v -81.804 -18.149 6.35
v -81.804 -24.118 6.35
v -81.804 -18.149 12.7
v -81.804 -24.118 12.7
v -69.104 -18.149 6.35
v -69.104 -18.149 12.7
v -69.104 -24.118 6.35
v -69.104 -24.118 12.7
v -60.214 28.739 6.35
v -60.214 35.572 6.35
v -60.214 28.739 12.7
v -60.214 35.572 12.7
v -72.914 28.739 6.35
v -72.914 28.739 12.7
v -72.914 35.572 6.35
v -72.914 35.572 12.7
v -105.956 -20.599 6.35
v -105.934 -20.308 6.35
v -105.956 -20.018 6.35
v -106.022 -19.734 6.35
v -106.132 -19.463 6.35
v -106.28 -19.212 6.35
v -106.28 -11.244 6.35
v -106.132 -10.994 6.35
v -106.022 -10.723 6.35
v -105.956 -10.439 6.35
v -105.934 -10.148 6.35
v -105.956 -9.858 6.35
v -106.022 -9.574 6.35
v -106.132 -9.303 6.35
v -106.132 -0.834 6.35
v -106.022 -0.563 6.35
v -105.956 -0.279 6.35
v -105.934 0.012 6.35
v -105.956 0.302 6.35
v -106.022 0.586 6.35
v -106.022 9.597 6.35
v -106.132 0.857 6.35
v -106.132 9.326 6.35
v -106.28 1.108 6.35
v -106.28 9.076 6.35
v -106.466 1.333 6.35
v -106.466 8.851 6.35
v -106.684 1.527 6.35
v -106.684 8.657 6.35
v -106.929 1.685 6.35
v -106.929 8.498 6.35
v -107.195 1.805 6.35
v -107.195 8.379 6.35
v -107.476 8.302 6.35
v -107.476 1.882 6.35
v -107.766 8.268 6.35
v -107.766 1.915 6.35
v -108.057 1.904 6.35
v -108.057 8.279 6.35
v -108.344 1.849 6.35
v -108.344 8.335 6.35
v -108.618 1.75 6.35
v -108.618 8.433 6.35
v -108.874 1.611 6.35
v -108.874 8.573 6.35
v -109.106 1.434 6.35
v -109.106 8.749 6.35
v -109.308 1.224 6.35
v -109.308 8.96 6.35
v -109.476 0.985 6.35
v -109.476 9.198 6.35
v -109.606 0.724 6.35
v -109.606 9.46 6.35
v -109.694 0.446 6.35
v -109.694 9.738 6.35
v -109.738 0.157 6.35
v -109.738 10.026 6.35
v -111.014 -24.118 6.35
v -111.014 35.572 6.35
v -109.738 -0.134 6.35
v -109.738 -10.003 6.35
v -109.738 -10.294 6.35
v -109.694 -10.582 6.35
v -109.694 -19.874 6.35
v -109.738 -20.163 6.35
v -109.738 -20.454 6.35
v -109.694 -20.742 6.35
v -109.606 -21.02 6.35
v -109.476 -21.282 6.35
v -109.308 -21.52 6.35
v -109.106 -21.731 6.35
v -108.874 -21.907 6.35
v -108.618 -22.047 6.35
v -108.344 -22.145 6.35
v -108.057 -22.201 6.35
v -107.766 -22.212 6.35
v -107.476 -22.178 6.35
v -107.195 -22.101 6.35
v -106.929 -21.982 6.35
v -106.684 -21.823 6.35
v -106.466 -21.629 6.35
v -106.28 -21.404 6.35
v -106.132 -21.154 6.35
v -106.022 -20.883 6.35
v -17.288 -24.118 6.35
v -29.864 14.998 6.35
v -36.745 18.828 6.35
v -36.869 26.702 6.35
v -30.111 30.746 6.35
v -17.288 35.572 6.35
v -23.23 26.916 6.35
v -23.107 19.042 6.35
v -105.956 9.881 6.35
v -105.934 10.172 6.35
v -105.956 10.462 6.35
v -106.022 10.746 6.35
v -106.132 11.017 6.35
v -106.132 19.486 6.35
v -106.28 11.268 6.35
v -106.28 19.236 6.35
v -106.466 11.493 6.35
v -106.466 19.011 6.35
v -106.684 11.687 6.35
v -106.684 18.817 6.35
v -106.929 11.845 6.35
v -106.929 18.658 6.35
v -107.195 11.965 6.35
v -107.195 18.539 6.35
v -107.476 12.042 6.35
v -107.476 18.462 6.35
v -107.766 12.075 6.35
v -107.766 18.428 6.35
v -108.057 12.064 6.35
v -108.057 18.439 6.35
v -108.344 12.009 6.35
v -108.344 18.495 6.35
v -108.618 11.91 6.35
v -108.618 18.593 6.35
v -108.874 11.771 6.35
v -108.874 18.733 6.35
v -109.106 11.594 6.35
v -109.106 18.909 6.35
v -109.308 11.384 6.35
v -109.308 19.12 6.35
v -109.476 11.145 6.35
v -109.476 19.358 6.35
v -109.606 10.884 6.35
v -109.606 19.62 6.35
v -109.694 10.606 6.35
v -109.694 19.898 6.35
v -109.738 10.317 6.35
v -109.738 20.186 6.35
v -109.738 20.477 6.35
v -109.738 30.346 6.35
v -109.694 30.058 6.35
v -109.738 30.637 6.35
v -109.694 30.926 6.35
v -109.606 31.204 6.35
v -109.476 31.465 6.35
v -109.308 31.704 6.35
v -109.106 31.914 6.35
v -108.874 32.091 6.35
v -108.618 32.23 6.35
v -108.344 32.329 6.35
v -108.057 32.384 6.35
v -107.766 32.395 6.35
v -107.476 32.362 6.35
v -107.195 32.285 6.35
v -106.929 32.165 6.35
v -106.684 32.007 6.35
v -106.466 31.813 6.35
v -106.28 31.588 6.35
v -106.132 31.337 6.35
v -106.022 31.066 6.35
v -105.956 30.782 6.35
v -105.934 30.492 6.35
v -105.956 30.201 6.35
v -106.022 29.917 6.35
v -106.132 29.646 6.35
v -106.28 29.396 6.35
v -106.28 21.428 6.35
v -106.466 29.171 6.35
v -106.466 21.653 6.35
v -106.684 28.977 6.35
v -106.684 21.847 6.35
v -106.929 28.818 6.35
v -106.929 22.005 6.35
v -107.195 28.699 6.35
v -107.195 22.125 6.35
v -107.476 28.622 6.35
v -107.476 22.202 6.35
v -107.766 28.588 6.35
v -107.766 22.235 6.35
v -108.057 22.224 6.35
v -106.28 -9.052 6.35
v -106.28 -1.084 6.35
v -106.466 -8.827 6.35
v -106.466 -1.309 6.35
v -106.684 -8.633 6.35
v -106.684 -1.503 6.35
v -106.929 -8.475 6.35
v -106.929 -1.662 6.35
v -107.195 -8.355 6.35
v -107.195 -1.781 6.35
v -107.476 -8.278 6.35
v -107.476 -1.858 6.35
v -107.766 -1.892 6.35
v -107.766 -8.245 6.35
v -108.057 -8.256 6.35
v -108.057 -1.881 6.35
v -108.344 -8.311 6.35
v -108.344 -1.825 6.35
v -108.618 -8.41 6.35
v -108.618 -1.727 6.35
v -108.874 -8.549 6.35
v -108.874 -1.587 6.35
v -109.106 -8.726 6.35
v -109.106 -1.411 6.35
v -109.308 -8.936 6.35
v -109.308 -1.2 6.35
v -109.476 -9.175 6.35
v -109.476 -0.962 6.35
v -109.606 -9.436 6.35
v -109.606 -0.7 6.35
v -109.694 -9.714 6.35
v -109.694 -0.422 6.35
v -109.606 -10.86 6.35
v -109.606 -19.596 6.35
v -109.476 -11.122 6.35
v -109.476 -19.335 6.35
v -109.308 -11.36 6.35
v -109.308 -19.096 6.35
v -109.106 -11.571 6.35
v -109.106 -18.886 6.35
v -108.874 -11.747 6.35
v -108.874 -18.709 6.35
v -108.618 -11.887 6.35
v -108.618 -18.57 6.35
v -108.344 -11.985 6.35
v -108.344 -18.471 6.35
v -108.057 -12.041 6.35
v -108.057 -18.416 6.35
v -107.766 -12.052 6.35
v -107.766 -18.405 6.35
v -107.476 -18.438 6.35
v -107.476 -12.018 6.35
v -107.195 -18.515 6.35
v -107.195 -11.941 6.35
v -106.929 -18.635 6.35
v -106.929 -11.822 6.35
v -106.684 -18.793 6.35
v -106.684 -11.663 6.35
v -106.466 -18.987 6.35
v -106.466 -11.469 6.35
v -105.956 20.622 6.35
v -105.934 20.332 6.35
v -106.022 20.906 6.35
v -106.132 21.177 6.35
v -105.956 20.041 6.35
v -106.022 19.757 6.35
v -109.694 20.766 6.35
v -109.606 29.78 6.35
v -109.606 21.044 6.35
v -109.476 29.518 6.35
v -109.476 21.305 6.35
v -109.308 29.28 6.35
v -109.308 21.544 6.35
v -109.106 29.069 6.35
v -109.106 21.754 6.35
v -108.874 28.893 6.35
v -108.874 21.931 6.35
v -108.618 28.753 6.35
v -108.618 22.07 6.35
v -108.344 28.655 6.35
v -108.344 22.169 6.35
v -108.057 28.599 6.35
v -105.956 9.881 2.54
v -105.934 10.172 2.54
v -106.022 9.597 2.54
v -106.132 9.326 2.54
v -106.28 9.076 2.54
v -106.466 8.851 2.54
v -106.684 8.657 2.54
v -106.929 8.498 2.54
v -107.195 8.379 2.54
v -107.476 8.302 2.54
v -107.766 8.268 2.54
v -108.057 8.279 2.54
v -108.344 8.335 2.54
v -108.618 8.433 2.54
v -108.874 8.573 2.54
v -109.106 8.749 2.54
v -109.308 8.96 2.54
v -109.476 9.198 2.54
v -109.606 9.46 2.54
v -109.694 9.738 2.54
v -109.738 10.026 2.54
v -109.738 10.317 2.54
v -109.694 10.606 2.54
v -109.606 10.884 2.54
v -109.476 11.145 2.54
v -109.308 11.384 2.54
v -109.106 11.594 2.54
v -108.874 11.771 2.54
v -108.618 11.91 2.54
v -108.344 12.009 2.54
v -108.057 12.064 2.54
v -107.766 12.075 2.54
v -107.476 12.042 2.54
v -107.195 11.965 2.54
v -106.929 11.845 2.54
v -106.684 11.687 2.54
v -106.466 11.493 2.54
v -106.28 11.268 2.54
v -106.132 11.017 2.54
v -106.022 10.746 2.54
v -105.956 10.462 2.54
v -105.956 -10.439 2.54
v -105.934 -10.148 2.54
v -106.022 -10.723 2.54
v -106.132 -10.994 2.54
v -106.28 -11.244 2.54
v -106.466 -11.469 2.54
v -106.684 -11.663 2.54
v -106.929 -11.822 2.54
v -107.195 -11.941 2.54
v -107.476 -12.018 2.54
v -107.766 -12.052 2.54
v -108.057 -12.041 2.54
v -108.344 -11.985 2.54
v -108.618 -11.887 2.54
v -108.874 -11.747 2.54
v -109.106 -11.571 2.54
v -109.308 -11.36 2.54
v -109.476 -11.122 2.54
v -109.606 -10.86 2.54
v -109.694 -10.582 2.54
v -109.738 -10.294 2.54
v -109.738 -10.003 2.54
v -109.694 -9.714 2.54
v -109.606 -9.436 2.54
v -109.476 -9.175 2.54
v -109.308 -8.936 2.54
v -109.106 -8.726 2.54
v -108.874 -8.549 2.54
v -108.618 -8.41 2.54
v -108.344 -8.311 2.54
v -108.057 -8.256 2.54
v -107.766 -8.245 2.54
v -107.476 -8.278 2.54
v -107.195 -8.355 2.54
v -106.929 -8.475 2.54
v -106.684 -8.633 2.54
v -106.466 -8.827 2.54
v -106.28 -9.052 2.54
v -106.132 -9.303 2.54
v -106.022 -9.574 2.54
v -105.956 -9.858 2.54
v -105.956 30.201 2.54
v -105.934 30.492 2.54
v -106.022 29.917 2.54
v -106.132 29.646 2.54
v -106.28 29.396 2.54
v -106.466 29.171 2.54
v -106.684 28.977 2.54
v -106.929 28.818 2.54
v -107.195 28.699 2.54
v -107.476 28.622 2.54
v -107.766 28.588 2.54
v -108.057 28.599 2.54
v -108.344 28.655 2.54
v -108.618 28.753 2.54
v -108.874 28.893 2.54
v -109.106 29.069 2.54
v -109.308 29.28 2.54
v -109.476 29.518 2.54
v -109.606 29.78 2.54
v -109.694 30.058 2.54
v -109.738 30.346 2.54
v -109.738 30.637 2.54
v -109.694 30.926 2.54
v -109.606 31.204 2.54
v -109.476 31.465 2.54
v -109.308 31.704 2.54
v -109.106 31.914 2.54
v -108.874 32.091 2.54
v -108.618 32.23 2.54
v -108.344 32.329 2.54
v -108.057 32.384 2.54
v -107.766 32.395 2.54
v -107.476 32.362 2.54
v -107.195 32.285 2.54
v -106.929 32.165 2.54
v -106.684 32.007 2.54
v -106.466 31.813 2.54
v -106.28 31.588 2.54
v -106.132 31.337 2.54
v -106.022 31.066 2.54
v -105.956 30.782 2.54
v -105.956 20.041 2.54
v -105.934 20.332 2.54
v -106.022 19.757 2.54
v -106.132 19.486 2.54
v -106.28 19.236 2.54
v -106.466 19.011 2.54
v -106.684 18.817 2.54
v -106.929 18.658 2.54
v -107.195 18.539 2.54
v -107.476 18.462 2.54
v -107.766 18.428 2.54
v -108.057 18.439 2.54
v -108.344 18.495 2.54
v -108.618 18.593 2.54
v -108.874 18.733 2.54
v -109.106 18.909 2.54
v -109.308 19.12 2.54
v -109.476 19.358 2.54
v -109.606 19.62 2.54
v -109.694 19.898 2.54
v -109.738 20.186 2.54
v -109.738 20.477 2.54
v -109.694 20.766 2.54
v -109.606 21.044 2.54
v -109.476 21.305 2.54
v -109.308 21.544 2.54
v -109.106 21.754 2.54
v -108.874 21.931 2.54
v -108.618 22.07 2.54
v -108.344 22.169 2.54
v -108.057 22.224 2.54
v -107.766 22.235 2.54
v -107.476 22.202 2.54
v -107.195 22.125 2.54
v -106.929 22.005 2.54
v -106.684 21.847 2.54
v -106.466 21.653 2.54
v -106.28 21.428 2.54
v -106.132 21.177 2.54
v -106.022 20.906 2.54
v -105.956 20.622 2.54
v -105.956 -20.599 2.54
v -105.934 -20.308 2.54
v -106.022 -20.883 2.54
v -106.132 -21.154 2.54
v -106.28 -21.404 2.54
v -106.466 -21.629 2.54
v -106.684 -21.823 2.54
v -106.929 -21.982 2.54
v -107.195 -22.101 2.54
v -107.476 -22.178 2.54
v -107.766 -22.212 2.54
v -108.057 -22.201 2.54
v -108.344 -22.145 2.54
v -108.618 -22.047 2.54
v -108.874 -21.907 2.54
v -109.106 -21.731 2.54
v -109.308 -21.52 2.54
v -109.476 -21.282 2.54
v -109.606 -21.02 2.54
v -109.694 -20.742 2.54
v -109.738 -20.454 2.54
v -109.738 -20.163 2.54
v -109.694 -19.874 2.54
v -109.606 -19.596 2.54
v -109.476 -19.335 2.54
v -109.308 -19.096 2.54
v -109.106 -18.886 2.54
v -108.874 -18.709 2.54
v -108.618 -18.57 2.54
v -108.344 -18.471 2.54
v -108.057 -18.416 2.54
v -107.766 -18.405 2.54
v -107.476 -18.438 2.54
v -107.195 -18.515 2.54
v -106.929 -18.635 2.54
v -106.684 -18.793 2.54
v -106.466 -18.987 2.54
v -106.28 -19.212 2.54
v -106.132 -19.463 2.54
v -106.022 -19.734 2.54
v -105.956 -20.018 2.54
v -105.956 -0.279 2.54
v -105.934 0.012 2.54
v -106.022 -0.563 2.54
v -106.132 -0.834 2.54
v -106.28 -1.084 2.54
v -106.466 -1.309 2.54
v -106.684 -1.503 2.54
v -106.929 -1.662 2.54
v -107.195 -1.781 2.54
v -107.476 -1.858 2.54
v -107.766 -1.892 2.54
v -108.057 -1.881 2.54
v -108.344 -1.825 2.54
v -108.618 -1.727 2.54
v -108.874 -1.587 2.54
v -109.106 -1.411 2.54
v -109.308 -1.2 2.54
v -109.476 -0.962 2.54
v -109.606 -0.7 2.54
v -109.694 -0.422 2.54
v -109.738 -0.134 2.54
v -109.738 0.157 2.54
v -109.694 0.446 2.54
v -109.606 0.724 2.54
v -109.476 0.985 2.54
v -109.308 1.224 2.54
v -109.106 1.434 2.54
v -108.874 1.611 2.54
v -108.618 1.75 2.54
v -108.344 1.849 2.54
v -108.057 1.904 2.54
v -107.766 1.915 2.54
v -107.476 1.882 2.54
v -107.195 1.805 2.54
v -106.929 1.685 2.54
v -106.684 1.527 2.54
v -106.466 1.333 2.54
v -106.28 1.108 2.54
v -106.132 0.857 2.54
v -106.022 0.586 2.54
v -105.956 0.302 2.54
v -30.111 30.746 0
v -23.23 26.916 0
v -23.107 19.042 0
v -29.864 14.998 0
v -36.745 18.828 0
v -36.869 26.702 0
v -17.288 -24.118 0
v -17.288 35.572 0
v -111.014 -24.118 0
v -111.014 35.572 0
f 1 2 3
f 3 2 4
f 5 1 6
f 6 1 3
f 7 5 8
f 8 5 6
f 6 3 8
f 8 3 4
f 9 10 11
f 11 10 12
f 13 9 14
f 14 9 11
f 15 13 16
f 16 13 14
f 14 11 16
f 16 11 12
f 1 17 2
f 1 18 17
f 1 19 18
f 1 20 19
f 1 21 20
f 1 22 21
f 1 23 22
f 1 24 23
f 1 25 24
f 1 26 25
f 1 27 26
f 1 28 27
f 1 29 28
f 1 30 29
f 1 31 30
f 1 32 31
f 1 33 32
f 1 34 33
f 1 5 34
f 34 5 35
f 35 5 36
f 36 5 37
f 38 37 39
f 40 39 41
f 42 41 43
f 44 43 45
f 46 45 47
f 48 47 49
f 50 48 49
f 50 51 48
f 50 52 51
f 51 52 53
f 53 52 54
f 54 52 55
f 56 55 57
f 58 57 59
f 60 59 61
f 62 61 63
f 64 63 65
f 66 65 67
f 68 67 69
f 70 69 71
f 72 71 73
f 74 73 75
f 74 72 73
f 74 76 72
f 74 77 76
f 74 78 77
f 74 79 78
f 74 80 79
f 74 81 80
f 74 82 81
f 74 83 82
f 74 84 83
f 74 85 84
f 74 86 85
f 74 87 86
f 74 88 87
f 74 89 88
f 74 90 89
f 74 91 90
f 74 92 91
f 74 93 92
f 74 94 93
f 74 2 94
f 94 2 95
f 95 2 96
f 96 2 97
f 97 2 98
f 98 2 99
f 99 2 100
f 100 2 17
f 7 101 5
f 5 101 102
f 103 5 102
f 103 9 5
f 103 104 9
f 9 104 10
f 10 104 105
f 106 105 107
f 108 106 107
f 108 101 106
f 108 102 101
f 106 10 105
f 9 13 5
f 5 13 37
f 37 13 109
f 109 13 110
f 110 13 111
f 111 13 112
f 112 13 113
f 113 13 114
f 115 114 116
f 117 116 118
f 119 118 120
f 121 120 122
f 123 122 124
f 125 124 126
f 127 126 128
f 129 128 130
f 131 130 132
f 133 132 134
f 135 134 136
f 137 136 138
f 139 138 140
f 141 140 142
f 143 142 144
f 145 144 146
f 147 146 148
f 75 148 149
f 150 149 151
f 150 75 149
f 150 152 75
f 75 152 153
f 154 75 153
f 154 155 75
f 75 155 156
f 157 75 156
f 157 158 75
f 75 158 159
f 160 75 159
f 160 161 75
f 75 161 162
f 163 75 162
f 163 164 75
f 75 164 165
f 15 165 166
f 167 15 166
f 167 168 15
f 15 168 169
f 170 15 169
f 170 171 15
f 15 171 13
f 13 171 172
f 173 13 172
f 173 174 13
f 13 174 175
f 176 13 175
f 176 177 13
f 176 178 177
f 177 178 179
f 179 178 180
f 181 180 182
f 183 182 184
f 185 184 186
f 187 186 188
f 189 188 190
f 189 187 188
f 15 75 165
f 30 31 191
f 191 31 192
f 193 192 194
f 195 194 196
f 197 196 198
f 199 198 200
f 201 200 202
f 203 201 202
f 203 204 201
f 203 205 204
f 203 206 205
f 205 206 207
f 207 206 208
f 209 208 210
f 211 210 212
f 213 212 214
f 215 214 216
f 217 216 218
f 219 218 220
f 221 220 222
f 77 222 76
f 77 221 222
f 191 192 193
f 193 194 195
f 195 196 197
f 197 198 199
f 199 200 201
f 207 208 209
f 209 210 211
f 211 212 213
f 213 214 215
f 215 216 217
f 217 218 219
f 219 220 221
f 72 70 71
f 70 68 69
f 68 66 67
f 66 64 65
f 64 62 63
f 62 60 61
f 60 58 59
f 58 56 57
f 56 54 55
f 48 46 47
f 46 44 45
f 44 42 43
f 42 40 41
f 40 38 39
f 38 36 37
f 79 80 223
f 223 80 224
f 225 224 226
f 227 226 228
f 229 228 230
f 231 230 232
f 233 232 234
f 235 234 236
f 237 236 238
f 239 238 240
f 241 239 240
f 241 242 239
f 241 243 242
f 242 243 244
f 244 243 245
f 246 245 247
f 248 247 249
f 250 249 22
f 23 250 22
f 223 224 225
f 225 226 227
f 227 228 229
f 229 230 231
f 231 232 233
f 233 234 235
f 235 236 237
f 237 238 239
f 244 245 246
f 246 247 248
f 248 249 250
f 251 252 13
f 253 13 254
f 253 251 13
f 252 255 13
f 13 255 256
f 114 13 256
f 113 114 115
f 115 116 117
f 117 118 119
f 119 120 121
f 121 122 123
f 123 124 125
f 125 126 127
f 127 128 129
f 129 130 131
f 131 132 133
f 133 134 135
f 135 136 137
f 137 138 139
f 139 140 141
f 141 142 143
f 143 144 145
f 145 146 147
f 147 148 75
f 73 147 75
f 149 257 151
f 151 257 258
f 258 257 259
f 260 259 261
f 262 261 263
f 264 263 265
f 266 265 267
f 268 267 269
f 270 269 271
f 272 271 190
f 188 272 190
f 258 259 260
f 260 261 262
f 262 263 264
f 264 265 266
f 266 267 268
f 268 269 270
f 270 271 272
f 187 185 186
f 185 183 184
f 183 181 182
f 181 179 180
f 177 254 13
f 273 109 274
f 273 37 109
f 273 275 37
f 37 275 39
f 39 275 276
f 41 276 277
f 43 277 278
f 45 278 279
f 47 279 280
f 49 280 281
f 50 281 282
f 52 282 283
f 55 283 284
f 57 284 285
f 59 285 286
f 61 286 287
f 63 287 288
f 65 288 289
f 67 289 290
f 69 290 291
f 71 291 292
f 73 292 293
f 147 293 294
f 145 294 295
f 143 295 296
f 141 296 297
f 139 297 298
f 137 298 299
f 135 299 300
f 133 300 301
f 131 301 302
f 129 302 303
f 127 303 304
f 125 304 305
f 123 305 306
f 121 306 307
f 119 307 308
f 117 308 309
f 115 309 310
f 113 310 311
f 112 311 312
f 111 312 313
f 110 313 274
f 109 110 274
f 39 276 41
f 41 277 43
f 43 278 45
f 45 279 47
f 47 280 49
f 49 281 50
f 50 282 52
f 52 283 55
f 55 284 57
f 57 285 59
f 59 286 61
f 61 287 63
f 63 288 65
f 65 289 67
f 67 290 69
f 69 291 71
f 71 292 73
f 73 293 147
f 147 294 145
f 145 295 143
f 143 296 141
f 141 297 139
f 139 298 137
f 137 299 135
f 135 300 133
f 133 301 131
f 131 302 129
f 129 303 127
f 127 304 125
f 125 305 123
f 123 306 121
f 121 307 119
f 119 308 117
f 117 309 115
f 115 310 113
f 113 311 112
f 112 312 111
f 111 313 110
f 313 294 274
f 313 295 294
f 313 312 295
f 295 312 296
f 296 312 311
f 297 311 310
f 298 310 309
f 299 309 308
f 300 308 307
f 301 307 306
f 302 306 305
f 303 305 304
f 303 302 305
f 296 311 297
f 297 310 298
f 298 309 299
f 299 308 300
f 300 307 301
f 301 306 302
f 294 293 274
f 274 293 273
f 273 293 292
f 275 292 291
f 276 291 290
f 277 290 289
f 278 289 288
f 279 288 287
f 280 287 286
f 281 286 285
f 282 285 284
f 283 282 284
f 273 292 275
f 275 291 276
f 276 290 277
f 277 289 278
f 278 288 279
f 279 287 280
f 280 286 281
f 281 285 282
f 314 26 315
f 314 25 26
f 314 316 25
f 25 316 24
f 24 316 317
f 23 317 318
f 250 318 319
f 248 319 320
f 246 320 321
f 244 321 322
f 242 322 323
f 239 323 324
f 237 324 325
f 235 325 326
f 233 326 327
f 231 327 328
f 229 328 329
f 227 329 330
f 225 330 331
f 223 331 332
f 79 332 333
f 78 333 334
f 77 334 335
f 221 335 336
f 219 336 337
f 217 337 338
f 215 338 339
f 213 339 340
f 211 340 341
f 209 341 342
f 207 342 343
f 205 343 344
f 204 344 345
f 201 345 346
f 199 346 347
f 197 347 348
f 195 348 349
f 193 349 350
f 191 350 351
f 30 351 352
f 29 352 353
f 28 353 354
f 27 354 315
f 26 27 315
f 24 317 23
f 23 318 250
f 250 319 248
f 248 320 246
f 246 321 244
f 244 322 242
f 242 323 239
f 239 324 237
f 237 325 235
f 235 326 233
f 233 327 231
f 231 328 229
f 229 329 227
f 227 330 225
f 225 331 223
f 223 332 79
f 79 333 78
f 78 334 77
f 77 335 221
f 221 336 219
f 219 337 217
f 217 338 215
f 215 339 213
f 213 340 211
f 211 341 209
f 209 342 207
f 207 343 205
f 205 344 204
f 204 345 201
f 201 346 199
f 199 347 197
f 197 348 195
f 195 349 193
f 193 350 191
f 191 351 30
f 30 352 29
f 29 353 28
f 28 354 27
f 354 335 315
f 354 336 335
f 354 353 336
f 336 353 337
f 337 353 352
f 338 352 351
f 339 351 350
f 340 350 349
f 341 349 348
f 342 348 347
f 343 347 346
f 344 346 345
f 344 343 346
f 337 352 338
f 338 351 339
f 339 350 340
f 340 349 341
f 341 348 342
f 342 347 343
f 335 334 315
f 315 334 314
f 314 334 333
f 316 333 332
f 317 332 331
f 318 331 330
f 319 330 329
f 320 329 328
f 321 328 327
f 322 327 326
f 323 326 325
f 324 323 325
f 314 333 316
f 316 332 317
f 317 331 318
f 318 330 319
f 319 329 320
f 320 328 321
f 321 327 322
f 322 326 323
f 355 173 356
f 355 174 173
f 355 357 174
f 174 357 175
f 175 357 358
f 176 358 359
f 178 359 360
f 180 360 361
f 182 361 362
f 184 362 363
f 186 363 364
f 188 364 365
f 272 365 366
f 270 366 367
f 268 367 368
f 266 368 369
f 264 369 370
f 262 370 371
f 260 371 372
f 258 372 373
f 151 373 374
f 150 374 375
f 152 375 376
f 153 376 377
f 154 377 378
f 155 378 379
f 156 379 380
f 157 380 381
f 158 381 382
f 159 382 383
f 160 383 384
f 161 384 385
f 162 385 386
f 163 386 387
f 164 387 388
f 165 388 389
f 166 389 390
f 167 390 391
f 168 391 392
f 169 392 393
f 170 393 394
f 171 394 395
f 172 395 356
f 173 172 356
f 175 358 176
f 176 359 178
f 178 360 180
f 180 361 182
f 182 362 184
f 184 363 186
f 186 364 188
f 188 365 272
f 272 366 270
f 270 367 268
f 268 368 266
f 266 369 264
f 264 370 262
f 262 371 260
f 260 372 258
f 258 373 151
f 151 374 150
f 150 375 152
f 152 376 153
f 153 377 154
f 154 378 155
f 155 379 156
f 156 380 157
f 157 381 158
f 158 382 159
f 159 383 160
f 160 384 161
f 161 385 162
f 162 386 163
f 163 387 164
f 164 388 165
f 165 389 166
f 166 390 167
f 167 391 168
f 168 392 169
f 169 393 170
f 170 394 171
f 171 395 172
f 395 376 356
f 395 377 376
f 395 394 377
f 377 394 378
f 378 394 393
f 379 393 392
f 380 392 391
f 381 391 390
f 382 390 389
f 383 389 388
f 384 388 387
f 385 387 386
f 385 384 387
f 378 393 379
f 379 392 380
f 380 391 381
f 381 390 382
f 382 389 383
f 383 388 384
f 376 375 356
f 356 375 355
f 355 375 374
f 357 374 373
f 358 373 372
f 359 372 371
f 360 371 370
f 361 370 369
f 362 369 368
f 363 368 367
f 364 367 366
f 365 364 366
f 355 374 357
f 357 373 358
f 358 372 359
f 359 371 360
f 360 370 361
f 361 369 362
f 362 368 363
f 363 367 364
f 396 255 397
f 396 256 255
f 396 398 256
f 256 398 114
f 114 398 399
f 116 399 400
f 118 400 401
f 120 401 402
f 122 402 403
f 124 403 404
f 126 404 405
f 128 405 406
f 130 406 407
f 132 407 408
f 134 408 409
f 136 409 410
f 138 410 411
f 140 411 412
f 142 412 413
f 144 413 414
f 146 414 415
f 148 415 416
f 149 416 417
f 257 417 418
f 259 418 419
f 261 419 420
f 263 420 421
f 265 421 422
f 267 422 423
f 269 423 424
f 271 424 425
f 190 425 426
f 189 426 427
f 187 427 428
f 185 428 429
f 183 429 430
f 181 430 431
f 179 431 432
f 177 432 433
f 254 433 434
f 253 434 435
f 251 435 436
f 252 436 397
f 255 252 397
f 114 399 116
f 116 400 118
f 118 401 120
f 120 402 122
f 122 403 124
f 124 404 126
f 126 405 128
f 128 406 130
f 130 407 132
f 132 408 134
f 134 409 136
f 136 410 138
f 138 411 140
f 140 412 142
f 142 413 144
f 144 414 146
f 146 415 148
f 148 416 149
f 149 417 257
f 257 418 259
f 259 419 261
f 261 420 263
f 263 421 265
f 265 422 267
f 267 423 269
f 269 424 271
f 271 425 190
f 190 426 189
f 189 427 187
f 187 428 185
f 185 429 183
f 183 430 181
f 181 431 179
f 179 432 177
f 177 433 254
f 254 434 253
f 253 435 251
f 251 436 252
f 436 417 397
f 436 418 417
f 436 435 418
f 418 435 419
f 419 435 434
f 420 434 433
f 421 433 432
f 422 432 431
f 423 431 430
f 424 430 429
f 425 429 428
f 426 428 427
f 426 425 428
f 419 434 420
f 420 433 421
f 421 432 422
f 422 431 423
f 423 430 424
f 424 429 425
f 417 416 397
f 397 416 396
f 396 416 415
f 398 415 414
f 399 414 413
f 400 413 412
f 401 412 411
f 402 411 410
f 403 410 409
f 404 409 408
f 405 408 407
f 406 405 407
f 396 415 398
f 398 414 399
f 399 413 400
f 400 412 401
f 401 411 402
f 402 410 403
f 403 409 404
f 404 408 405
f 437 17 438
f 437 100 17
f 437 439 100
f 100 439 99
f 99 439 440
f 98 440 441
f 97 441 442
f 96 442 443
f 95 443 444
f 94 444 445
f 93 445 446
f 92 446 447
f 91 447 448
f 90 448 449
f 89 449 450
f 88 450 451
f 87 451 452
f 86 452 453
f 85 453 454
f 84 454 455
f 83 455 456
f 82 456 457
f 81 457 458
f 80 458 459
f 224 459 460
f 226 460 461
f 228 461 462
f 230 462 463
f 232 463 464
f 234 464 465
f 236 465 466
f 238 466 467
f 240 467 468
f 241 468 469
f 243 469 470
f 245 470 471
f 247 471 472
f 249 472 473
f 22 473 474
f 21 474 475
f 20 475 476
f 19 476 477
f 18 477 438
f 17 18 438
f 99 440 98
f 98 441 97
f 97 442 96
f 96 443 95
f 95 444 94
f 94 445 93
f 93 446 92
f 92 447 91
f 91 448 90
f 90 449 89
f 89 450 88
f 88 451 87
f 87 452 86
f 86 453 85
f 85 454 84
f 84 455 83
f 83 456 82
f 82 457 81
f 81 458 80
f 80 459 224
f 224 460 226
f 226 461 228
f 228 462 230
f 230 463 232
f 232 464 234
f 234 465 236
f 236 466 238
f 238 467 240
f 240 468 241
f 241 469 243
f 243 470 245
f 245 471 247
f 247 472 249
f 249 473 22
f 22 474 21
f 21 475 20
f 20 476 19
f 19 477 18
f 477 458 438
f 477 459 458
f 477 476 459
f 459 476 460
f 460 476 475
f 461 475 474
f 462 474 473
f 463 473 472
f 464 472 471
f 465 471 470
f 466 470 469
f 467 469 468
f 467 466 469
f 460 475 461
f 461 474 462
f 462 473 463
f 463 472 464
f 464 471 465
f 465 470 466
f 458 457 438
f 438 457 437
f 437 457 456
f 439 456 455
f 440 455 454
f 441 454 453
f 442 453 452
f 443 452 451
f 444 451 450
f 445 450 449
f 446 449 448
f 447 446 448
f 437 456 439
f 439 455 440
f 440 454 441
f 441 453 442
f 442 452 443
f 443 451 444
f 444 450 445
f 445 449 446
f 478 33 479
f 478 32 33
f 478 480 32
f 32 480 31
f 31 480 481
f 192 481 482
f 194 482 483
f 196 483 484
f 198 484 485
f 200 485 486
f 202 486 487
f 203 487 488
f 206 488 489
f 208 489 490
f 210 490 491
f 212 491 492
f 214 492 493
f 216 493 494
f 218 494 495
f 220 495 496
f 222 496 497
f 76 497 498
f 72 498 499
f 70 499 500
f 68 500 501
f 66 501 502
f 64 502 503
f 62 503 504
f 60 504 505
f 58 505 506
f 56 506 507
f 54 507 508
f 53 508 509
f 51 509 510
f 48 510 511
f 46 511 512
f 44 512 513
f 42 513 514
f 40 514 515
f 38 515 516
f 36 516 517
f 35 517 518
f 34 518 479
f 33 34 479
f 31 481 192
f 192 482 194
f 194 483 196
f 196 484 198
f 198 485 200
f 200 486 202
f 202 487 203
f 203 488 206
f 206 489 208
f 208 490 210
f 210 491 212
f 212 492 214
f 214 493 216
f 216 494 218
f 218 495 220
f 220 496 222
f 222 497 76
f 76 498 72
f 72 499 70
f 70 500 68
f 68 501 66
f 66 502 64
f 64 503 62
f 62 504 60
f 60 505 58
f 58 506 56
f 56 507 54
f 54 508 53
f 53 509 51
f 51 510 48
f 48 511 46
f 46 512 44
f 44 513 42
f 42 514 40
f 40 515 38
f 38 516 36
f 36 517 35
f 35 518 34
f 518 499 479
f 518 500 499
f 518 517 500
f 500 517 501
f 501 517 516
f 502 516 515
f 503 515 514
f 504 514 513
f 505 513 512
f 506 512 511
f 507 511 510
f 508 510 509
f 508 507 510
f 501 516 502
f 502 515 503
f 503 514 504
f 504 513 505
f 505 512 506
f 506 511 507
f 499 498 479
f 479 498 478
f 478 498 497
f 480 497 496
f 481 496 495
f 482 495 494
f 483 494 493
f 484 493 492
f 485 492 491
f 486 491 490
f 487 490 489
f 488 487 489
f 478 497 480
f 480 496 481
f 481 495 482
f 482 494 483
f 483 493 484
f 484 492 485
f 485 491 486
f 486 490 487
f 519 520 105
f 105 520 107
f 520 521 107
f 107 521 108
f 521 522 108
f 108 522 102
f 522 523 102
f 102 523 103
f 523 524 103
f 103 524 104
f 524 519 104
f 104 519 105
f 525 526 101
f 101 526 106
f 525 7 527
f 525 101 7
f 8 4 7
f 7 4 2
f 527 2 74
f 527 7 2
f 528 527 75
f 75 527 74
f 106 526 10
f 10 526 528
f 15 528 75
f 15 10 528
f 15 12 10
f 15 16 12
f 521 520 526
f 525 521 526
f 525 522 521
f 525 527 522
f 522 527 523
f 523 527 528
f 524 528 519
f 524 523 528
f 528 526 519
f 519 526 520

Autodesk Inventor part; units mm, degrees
ref_plane "YZ Plane" through (0, 0, 0) normal (1, 0, 0) x (0, 1, 0)
ref_plane "XZ Plane" through (0, 0, 0) normal (0, 1, 0) x (-1, 0, 0)
ref_plane "XY Plane" through (0, 0, 0) normal (0, 0, 1) x (1, 0, 0)
sketch "Sketch2" plane through (0, 0, 0) normal (0, 0, 1) x (1, 0, 0)
  line L0 (-36.8686, 26.7016) -> (-30.1114, 30.7457)
  line L1 (-30.1114, 30.7457) -> (-23.2304, 26.9158)
  line L2 (-23.2304, 26.9158) -> (-23.1068, 19.0418)
  line L3 (-23.1068, 19.0418) -> (-29.864, 14.9977)
  line L4 (-29.864, 14.9977) -> (-36.7449, 18.8276)
  line L5 (-36.7449, 18.8276) -> (-36.8686, 26.7016)
  line L6 (-111.0137, 35.5717) -> (-17.2877, 35.5717)
  line L7 (-17.2877, 35.5717) -> (-17.2877, -24.1183)
  line L8 (-17.2877, -24.1183) -> (-111.0137, -24.1183)
  line L9 (-111.0137, -24.1183) -> (-111.0137, 35.5717)
  line L10 (-101.137, 28.7391) -> (-70.6621, 28.7391)
  line L11 (-70.6621, 28.7391) -> (-70.6621, -18.2509)
  line L12 (-70.6621, -18.2509) -> (-101.137, -18.2509)
  line L13 (-101.137, -18.2509) -> (-101.137, 28.7391)
  point P0 (0, 0)
  point P1 (-29.9877, 22.8717)
  dimension "d1" = 7.874
  dimension "d3" = 59.69
  dimension "d5" = 12.7
  dimension "d6" = 93.726
  dimension "d39" = 46.99
  dimension "d41" = 6.8326
  dimension "d42" = 5.8674
  dimension "d43" = 12.7
extrude "Extrusion1" add sketch "Sketch2" along normal blind 6.35 contours L6 L7 L8 L9 | L10 L11 L12 L13
sketch "Sketch3" plane through (0, 0, 6.35) normal (0, 0, 1) x (1, 0, 0)
  circle A0 centre (-107.8387, 30.4917) radius 1.905
  line L0 (-17.2877, 35.5717) -> (-111.0137, 35.5717) projected
  line L1 (-111.0137, 35.5717) -> (-111.0137, -24.1183) projected
  circle A1 centre (-107.8387, 20.3317) radius 1.905
  circle A2 centre (-107.8387, -10.1483) radius 1.905
  circle A3 centre (-107.8387, -20.3083) radius 1.905
  line L2 (-111.0137, -24.1183) -> (-17.2877, -24.1183) projected
  circle A4 centre (-107.8387, 10.1717) radius 1.905
  circle A5 centre (-107.8387, 0.0117) radius 1.905
  point P0 (0, 0)
  dimension "d9" = 3.81
  dimension "d10" = 5.08
  dimension "d11" = 3.175
  dimension "d13" = 3.81
  dimension "d14" = 3.81
  dimension "d15" = 3.81
  dimension "d17" = 3.175
  dimension "d18" = 3.175
  dimension "d19" = 3.175
  dimension "d21" = 10.16
  dimension "d24" = 3.81
  dimension "d25" = 3.81
  dimension "d26" = 3.175
  dimension "d27" = 3.175
  dimension "d28" = 10.16
  dimension "d29" = 10.16
  dimension "d33" = 10.16
  dimension "d44" = 10.16
extrude "Extrusion2" cut sketch "Sketch3" against normal blind 3.81
sketch "Sketch4" plane through (0, 0, 6.35) normal (0, 0, 1) x (1, 0, 0)
  line L0 (-17.2877, 35.5717) -> (-111.0137, 35.5717) projected
  line L1 (-72.9137, 35.5717) -> (-60.2137, 35.5717)
  line L2 (-60.2137, 35.5717) -> (-60.2137, 35.0891)
  line L3 (-60.2137, 35.0891) -> (-72.9137, 35.0891)
  line L4 (-72.9137, 35.0891) -> (-72.9137, 35.5717)
  line L5 (-111.0137, -24.1183) -> (-17.2877, -24.1183) projected
  line L6 (-111.0137, 35.5717) -> (-111.0137, -24.1183) projected
  line L7 (-72.9137, 35.5717) -> (-60.2137, 35.5717)
  line L8 (-60.2137, 35.5717) -> (-60.2137, 28.7391)
  line L9 (-60.2137, 28.7391) -> (-72.9137, 28.7391)
  line L10 (-72.9137, 28.7391) -> (-72.9137, 35.5717)
  line L11 (-69.1037, -24.1183) -> (-81.8037, -24.1183)
  line L12 (-81.8037, -24.1183) -> (-81.8037, -18.1493)
  line L13 (-81.8037, -18.1493) -> (-69.1037, -18.1493)
  line L14 (-69.1037, -18.1493) -> (-69.1037, -24.1183)
  point P0 (0, 0)
  dimension "d34" = 59.2074
  dimension "d35" = 12.7
  dimension "d36" = 38.1
  dimension "d45" = 6.8326
  dimension "d46" = 12.7
  dimension "d47" = 5.969
  dimension "d48" = 29.21
extrude "Extrusion3" add sketch "Sketch4" along normal blind 6.35
properties part number "polyhexpart"
